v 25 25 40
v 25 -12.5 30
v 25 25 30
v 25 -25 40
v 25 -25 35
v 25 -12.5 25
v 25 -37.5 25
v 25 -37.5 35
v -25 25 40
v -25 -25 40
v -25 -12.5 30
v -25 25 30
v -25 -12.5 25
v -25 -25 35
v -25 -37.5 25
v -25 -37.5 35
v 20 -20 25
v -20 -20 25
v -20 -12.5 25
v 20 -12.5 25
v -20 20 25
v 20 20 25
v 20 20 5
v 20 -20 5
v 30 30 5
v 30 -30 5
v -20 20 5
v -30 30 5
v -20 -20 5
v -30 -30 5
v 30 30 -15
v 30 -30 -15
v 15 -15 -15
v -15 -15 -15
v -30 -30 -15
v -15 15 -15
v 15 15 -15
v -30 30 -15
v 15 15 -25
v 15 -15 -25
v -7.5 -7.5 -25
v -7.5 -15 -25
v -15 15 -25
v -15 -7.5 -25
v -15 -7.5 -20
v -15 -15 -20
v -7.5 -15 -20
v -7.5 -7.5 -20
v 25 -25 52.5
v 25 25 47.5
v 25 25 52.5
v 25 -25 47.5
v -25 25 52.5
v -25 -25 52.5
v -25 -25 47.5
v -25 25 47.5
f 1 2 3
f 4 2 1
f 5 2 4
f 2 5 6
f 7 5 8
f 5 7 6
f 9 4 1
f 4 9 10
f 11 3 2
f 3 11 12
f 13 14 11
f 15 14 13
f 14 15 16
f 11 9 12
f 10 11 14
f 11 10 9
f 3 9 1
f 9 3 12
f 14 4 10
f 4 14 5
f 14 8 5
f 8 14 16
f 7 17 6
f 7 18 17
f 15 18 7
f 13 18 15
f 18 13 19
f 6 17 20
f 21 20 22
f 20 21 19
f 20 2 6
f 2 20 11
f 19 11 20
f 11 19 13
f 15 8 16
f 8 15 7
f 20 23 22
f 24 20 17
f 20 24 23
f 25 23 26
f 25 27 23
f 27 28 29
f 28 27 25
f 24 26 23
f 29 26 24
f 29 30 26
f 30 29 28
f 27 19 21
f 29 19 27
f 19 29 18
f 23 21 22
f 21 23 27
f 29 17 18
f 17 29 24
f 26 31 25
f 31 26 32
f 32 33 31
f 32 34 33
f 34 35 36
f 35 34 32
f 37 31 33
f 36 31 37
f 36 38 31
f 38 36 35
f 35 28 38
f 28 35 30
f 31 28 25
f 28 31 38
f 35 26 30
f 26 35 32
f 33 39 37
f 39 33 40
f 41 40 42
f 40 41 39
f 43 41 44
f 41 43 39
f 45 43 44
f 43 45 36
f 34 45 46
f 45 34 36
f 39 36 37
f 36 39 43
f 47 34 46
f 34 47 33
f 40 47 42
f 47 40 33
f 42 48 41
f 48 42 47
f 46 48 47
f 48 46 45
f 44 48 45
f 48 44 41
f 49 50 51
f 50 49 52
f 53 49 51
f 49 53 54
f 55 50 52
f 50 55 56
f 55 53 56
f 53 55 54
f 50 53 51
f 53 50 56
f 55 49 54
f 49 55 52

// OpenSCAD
// Define the dimensions for each component
module flat_plate() {
    cube([50, 50, 5], center = true);
}

module l_shaped_connector() {
    difference() {
        union() {
            cube([50, 50, 10], center = true);
            translate([0, -25, -5]) cube([50, 25, 10], center = true);
        }
        translate([-25, -25, -5]) polyhedron(
            points = [[0, 0, 0], [25, 0, 0], [0, 25, 0], [0, 0, 10], [25, 0, 10], [0, 25, 10]],
            faces = [[0, 1, 2], [3, 4, 5], [0, 1, 4, 3], [1, 2, 5, 4], [2, 0, 3, 5]]
        );
    }
}

module inner_support() {
    difference() {
        cube([40, 40, 20], center = true);
        translate([-20, -20, -10]) polyhedron(
            points = [[0, 0, 0], [20, 0, 0], [0, 20, 0], [0, 0, 20], [20, 0, 20], [0, 20, 20]],
            faces = [[0, 1, 2], [3, 4, 5], [0, 1, 4, 3], [1, 2, 5, 4], [2, 0, 3, 5]]
        );
    }
}

module outer_support() {
    difference() {
        cube([60, 60, 20], center = true);
        translate([-30, -30, -10]) polyhedron(
            points = [[0, 0, 0], [30, 0, 0], [0, 30, 0], [0, 0, 20], [30, 0, 20], [0, 30, 20]],
            faces = [[0, 1, 2], [3, 4, 5], [0, 1, 4, 3], [1, 2, 5, 4], [2, 0, 3, 5]]
        );
    }
}

module reinforcement_block() {
    difference() {
        cube([30, 30, 10], center = true);
        translate([-15, -15, -5]) cube([15, 15, 10], center = true);
    }
}

// Assemble the components based on the positional relationship
module assembly() {
    translate([0, 0, 50]) flat_plate();
    translate([0, 0, 35]) l_shaped_connector();
    translate([0, 0, 15]) inner_support();
    translate([0, 0, -5]) outer_support();
    translate([0, 0, -20]) reinforcement_block();
}

// Render the final assembly
assembly();
